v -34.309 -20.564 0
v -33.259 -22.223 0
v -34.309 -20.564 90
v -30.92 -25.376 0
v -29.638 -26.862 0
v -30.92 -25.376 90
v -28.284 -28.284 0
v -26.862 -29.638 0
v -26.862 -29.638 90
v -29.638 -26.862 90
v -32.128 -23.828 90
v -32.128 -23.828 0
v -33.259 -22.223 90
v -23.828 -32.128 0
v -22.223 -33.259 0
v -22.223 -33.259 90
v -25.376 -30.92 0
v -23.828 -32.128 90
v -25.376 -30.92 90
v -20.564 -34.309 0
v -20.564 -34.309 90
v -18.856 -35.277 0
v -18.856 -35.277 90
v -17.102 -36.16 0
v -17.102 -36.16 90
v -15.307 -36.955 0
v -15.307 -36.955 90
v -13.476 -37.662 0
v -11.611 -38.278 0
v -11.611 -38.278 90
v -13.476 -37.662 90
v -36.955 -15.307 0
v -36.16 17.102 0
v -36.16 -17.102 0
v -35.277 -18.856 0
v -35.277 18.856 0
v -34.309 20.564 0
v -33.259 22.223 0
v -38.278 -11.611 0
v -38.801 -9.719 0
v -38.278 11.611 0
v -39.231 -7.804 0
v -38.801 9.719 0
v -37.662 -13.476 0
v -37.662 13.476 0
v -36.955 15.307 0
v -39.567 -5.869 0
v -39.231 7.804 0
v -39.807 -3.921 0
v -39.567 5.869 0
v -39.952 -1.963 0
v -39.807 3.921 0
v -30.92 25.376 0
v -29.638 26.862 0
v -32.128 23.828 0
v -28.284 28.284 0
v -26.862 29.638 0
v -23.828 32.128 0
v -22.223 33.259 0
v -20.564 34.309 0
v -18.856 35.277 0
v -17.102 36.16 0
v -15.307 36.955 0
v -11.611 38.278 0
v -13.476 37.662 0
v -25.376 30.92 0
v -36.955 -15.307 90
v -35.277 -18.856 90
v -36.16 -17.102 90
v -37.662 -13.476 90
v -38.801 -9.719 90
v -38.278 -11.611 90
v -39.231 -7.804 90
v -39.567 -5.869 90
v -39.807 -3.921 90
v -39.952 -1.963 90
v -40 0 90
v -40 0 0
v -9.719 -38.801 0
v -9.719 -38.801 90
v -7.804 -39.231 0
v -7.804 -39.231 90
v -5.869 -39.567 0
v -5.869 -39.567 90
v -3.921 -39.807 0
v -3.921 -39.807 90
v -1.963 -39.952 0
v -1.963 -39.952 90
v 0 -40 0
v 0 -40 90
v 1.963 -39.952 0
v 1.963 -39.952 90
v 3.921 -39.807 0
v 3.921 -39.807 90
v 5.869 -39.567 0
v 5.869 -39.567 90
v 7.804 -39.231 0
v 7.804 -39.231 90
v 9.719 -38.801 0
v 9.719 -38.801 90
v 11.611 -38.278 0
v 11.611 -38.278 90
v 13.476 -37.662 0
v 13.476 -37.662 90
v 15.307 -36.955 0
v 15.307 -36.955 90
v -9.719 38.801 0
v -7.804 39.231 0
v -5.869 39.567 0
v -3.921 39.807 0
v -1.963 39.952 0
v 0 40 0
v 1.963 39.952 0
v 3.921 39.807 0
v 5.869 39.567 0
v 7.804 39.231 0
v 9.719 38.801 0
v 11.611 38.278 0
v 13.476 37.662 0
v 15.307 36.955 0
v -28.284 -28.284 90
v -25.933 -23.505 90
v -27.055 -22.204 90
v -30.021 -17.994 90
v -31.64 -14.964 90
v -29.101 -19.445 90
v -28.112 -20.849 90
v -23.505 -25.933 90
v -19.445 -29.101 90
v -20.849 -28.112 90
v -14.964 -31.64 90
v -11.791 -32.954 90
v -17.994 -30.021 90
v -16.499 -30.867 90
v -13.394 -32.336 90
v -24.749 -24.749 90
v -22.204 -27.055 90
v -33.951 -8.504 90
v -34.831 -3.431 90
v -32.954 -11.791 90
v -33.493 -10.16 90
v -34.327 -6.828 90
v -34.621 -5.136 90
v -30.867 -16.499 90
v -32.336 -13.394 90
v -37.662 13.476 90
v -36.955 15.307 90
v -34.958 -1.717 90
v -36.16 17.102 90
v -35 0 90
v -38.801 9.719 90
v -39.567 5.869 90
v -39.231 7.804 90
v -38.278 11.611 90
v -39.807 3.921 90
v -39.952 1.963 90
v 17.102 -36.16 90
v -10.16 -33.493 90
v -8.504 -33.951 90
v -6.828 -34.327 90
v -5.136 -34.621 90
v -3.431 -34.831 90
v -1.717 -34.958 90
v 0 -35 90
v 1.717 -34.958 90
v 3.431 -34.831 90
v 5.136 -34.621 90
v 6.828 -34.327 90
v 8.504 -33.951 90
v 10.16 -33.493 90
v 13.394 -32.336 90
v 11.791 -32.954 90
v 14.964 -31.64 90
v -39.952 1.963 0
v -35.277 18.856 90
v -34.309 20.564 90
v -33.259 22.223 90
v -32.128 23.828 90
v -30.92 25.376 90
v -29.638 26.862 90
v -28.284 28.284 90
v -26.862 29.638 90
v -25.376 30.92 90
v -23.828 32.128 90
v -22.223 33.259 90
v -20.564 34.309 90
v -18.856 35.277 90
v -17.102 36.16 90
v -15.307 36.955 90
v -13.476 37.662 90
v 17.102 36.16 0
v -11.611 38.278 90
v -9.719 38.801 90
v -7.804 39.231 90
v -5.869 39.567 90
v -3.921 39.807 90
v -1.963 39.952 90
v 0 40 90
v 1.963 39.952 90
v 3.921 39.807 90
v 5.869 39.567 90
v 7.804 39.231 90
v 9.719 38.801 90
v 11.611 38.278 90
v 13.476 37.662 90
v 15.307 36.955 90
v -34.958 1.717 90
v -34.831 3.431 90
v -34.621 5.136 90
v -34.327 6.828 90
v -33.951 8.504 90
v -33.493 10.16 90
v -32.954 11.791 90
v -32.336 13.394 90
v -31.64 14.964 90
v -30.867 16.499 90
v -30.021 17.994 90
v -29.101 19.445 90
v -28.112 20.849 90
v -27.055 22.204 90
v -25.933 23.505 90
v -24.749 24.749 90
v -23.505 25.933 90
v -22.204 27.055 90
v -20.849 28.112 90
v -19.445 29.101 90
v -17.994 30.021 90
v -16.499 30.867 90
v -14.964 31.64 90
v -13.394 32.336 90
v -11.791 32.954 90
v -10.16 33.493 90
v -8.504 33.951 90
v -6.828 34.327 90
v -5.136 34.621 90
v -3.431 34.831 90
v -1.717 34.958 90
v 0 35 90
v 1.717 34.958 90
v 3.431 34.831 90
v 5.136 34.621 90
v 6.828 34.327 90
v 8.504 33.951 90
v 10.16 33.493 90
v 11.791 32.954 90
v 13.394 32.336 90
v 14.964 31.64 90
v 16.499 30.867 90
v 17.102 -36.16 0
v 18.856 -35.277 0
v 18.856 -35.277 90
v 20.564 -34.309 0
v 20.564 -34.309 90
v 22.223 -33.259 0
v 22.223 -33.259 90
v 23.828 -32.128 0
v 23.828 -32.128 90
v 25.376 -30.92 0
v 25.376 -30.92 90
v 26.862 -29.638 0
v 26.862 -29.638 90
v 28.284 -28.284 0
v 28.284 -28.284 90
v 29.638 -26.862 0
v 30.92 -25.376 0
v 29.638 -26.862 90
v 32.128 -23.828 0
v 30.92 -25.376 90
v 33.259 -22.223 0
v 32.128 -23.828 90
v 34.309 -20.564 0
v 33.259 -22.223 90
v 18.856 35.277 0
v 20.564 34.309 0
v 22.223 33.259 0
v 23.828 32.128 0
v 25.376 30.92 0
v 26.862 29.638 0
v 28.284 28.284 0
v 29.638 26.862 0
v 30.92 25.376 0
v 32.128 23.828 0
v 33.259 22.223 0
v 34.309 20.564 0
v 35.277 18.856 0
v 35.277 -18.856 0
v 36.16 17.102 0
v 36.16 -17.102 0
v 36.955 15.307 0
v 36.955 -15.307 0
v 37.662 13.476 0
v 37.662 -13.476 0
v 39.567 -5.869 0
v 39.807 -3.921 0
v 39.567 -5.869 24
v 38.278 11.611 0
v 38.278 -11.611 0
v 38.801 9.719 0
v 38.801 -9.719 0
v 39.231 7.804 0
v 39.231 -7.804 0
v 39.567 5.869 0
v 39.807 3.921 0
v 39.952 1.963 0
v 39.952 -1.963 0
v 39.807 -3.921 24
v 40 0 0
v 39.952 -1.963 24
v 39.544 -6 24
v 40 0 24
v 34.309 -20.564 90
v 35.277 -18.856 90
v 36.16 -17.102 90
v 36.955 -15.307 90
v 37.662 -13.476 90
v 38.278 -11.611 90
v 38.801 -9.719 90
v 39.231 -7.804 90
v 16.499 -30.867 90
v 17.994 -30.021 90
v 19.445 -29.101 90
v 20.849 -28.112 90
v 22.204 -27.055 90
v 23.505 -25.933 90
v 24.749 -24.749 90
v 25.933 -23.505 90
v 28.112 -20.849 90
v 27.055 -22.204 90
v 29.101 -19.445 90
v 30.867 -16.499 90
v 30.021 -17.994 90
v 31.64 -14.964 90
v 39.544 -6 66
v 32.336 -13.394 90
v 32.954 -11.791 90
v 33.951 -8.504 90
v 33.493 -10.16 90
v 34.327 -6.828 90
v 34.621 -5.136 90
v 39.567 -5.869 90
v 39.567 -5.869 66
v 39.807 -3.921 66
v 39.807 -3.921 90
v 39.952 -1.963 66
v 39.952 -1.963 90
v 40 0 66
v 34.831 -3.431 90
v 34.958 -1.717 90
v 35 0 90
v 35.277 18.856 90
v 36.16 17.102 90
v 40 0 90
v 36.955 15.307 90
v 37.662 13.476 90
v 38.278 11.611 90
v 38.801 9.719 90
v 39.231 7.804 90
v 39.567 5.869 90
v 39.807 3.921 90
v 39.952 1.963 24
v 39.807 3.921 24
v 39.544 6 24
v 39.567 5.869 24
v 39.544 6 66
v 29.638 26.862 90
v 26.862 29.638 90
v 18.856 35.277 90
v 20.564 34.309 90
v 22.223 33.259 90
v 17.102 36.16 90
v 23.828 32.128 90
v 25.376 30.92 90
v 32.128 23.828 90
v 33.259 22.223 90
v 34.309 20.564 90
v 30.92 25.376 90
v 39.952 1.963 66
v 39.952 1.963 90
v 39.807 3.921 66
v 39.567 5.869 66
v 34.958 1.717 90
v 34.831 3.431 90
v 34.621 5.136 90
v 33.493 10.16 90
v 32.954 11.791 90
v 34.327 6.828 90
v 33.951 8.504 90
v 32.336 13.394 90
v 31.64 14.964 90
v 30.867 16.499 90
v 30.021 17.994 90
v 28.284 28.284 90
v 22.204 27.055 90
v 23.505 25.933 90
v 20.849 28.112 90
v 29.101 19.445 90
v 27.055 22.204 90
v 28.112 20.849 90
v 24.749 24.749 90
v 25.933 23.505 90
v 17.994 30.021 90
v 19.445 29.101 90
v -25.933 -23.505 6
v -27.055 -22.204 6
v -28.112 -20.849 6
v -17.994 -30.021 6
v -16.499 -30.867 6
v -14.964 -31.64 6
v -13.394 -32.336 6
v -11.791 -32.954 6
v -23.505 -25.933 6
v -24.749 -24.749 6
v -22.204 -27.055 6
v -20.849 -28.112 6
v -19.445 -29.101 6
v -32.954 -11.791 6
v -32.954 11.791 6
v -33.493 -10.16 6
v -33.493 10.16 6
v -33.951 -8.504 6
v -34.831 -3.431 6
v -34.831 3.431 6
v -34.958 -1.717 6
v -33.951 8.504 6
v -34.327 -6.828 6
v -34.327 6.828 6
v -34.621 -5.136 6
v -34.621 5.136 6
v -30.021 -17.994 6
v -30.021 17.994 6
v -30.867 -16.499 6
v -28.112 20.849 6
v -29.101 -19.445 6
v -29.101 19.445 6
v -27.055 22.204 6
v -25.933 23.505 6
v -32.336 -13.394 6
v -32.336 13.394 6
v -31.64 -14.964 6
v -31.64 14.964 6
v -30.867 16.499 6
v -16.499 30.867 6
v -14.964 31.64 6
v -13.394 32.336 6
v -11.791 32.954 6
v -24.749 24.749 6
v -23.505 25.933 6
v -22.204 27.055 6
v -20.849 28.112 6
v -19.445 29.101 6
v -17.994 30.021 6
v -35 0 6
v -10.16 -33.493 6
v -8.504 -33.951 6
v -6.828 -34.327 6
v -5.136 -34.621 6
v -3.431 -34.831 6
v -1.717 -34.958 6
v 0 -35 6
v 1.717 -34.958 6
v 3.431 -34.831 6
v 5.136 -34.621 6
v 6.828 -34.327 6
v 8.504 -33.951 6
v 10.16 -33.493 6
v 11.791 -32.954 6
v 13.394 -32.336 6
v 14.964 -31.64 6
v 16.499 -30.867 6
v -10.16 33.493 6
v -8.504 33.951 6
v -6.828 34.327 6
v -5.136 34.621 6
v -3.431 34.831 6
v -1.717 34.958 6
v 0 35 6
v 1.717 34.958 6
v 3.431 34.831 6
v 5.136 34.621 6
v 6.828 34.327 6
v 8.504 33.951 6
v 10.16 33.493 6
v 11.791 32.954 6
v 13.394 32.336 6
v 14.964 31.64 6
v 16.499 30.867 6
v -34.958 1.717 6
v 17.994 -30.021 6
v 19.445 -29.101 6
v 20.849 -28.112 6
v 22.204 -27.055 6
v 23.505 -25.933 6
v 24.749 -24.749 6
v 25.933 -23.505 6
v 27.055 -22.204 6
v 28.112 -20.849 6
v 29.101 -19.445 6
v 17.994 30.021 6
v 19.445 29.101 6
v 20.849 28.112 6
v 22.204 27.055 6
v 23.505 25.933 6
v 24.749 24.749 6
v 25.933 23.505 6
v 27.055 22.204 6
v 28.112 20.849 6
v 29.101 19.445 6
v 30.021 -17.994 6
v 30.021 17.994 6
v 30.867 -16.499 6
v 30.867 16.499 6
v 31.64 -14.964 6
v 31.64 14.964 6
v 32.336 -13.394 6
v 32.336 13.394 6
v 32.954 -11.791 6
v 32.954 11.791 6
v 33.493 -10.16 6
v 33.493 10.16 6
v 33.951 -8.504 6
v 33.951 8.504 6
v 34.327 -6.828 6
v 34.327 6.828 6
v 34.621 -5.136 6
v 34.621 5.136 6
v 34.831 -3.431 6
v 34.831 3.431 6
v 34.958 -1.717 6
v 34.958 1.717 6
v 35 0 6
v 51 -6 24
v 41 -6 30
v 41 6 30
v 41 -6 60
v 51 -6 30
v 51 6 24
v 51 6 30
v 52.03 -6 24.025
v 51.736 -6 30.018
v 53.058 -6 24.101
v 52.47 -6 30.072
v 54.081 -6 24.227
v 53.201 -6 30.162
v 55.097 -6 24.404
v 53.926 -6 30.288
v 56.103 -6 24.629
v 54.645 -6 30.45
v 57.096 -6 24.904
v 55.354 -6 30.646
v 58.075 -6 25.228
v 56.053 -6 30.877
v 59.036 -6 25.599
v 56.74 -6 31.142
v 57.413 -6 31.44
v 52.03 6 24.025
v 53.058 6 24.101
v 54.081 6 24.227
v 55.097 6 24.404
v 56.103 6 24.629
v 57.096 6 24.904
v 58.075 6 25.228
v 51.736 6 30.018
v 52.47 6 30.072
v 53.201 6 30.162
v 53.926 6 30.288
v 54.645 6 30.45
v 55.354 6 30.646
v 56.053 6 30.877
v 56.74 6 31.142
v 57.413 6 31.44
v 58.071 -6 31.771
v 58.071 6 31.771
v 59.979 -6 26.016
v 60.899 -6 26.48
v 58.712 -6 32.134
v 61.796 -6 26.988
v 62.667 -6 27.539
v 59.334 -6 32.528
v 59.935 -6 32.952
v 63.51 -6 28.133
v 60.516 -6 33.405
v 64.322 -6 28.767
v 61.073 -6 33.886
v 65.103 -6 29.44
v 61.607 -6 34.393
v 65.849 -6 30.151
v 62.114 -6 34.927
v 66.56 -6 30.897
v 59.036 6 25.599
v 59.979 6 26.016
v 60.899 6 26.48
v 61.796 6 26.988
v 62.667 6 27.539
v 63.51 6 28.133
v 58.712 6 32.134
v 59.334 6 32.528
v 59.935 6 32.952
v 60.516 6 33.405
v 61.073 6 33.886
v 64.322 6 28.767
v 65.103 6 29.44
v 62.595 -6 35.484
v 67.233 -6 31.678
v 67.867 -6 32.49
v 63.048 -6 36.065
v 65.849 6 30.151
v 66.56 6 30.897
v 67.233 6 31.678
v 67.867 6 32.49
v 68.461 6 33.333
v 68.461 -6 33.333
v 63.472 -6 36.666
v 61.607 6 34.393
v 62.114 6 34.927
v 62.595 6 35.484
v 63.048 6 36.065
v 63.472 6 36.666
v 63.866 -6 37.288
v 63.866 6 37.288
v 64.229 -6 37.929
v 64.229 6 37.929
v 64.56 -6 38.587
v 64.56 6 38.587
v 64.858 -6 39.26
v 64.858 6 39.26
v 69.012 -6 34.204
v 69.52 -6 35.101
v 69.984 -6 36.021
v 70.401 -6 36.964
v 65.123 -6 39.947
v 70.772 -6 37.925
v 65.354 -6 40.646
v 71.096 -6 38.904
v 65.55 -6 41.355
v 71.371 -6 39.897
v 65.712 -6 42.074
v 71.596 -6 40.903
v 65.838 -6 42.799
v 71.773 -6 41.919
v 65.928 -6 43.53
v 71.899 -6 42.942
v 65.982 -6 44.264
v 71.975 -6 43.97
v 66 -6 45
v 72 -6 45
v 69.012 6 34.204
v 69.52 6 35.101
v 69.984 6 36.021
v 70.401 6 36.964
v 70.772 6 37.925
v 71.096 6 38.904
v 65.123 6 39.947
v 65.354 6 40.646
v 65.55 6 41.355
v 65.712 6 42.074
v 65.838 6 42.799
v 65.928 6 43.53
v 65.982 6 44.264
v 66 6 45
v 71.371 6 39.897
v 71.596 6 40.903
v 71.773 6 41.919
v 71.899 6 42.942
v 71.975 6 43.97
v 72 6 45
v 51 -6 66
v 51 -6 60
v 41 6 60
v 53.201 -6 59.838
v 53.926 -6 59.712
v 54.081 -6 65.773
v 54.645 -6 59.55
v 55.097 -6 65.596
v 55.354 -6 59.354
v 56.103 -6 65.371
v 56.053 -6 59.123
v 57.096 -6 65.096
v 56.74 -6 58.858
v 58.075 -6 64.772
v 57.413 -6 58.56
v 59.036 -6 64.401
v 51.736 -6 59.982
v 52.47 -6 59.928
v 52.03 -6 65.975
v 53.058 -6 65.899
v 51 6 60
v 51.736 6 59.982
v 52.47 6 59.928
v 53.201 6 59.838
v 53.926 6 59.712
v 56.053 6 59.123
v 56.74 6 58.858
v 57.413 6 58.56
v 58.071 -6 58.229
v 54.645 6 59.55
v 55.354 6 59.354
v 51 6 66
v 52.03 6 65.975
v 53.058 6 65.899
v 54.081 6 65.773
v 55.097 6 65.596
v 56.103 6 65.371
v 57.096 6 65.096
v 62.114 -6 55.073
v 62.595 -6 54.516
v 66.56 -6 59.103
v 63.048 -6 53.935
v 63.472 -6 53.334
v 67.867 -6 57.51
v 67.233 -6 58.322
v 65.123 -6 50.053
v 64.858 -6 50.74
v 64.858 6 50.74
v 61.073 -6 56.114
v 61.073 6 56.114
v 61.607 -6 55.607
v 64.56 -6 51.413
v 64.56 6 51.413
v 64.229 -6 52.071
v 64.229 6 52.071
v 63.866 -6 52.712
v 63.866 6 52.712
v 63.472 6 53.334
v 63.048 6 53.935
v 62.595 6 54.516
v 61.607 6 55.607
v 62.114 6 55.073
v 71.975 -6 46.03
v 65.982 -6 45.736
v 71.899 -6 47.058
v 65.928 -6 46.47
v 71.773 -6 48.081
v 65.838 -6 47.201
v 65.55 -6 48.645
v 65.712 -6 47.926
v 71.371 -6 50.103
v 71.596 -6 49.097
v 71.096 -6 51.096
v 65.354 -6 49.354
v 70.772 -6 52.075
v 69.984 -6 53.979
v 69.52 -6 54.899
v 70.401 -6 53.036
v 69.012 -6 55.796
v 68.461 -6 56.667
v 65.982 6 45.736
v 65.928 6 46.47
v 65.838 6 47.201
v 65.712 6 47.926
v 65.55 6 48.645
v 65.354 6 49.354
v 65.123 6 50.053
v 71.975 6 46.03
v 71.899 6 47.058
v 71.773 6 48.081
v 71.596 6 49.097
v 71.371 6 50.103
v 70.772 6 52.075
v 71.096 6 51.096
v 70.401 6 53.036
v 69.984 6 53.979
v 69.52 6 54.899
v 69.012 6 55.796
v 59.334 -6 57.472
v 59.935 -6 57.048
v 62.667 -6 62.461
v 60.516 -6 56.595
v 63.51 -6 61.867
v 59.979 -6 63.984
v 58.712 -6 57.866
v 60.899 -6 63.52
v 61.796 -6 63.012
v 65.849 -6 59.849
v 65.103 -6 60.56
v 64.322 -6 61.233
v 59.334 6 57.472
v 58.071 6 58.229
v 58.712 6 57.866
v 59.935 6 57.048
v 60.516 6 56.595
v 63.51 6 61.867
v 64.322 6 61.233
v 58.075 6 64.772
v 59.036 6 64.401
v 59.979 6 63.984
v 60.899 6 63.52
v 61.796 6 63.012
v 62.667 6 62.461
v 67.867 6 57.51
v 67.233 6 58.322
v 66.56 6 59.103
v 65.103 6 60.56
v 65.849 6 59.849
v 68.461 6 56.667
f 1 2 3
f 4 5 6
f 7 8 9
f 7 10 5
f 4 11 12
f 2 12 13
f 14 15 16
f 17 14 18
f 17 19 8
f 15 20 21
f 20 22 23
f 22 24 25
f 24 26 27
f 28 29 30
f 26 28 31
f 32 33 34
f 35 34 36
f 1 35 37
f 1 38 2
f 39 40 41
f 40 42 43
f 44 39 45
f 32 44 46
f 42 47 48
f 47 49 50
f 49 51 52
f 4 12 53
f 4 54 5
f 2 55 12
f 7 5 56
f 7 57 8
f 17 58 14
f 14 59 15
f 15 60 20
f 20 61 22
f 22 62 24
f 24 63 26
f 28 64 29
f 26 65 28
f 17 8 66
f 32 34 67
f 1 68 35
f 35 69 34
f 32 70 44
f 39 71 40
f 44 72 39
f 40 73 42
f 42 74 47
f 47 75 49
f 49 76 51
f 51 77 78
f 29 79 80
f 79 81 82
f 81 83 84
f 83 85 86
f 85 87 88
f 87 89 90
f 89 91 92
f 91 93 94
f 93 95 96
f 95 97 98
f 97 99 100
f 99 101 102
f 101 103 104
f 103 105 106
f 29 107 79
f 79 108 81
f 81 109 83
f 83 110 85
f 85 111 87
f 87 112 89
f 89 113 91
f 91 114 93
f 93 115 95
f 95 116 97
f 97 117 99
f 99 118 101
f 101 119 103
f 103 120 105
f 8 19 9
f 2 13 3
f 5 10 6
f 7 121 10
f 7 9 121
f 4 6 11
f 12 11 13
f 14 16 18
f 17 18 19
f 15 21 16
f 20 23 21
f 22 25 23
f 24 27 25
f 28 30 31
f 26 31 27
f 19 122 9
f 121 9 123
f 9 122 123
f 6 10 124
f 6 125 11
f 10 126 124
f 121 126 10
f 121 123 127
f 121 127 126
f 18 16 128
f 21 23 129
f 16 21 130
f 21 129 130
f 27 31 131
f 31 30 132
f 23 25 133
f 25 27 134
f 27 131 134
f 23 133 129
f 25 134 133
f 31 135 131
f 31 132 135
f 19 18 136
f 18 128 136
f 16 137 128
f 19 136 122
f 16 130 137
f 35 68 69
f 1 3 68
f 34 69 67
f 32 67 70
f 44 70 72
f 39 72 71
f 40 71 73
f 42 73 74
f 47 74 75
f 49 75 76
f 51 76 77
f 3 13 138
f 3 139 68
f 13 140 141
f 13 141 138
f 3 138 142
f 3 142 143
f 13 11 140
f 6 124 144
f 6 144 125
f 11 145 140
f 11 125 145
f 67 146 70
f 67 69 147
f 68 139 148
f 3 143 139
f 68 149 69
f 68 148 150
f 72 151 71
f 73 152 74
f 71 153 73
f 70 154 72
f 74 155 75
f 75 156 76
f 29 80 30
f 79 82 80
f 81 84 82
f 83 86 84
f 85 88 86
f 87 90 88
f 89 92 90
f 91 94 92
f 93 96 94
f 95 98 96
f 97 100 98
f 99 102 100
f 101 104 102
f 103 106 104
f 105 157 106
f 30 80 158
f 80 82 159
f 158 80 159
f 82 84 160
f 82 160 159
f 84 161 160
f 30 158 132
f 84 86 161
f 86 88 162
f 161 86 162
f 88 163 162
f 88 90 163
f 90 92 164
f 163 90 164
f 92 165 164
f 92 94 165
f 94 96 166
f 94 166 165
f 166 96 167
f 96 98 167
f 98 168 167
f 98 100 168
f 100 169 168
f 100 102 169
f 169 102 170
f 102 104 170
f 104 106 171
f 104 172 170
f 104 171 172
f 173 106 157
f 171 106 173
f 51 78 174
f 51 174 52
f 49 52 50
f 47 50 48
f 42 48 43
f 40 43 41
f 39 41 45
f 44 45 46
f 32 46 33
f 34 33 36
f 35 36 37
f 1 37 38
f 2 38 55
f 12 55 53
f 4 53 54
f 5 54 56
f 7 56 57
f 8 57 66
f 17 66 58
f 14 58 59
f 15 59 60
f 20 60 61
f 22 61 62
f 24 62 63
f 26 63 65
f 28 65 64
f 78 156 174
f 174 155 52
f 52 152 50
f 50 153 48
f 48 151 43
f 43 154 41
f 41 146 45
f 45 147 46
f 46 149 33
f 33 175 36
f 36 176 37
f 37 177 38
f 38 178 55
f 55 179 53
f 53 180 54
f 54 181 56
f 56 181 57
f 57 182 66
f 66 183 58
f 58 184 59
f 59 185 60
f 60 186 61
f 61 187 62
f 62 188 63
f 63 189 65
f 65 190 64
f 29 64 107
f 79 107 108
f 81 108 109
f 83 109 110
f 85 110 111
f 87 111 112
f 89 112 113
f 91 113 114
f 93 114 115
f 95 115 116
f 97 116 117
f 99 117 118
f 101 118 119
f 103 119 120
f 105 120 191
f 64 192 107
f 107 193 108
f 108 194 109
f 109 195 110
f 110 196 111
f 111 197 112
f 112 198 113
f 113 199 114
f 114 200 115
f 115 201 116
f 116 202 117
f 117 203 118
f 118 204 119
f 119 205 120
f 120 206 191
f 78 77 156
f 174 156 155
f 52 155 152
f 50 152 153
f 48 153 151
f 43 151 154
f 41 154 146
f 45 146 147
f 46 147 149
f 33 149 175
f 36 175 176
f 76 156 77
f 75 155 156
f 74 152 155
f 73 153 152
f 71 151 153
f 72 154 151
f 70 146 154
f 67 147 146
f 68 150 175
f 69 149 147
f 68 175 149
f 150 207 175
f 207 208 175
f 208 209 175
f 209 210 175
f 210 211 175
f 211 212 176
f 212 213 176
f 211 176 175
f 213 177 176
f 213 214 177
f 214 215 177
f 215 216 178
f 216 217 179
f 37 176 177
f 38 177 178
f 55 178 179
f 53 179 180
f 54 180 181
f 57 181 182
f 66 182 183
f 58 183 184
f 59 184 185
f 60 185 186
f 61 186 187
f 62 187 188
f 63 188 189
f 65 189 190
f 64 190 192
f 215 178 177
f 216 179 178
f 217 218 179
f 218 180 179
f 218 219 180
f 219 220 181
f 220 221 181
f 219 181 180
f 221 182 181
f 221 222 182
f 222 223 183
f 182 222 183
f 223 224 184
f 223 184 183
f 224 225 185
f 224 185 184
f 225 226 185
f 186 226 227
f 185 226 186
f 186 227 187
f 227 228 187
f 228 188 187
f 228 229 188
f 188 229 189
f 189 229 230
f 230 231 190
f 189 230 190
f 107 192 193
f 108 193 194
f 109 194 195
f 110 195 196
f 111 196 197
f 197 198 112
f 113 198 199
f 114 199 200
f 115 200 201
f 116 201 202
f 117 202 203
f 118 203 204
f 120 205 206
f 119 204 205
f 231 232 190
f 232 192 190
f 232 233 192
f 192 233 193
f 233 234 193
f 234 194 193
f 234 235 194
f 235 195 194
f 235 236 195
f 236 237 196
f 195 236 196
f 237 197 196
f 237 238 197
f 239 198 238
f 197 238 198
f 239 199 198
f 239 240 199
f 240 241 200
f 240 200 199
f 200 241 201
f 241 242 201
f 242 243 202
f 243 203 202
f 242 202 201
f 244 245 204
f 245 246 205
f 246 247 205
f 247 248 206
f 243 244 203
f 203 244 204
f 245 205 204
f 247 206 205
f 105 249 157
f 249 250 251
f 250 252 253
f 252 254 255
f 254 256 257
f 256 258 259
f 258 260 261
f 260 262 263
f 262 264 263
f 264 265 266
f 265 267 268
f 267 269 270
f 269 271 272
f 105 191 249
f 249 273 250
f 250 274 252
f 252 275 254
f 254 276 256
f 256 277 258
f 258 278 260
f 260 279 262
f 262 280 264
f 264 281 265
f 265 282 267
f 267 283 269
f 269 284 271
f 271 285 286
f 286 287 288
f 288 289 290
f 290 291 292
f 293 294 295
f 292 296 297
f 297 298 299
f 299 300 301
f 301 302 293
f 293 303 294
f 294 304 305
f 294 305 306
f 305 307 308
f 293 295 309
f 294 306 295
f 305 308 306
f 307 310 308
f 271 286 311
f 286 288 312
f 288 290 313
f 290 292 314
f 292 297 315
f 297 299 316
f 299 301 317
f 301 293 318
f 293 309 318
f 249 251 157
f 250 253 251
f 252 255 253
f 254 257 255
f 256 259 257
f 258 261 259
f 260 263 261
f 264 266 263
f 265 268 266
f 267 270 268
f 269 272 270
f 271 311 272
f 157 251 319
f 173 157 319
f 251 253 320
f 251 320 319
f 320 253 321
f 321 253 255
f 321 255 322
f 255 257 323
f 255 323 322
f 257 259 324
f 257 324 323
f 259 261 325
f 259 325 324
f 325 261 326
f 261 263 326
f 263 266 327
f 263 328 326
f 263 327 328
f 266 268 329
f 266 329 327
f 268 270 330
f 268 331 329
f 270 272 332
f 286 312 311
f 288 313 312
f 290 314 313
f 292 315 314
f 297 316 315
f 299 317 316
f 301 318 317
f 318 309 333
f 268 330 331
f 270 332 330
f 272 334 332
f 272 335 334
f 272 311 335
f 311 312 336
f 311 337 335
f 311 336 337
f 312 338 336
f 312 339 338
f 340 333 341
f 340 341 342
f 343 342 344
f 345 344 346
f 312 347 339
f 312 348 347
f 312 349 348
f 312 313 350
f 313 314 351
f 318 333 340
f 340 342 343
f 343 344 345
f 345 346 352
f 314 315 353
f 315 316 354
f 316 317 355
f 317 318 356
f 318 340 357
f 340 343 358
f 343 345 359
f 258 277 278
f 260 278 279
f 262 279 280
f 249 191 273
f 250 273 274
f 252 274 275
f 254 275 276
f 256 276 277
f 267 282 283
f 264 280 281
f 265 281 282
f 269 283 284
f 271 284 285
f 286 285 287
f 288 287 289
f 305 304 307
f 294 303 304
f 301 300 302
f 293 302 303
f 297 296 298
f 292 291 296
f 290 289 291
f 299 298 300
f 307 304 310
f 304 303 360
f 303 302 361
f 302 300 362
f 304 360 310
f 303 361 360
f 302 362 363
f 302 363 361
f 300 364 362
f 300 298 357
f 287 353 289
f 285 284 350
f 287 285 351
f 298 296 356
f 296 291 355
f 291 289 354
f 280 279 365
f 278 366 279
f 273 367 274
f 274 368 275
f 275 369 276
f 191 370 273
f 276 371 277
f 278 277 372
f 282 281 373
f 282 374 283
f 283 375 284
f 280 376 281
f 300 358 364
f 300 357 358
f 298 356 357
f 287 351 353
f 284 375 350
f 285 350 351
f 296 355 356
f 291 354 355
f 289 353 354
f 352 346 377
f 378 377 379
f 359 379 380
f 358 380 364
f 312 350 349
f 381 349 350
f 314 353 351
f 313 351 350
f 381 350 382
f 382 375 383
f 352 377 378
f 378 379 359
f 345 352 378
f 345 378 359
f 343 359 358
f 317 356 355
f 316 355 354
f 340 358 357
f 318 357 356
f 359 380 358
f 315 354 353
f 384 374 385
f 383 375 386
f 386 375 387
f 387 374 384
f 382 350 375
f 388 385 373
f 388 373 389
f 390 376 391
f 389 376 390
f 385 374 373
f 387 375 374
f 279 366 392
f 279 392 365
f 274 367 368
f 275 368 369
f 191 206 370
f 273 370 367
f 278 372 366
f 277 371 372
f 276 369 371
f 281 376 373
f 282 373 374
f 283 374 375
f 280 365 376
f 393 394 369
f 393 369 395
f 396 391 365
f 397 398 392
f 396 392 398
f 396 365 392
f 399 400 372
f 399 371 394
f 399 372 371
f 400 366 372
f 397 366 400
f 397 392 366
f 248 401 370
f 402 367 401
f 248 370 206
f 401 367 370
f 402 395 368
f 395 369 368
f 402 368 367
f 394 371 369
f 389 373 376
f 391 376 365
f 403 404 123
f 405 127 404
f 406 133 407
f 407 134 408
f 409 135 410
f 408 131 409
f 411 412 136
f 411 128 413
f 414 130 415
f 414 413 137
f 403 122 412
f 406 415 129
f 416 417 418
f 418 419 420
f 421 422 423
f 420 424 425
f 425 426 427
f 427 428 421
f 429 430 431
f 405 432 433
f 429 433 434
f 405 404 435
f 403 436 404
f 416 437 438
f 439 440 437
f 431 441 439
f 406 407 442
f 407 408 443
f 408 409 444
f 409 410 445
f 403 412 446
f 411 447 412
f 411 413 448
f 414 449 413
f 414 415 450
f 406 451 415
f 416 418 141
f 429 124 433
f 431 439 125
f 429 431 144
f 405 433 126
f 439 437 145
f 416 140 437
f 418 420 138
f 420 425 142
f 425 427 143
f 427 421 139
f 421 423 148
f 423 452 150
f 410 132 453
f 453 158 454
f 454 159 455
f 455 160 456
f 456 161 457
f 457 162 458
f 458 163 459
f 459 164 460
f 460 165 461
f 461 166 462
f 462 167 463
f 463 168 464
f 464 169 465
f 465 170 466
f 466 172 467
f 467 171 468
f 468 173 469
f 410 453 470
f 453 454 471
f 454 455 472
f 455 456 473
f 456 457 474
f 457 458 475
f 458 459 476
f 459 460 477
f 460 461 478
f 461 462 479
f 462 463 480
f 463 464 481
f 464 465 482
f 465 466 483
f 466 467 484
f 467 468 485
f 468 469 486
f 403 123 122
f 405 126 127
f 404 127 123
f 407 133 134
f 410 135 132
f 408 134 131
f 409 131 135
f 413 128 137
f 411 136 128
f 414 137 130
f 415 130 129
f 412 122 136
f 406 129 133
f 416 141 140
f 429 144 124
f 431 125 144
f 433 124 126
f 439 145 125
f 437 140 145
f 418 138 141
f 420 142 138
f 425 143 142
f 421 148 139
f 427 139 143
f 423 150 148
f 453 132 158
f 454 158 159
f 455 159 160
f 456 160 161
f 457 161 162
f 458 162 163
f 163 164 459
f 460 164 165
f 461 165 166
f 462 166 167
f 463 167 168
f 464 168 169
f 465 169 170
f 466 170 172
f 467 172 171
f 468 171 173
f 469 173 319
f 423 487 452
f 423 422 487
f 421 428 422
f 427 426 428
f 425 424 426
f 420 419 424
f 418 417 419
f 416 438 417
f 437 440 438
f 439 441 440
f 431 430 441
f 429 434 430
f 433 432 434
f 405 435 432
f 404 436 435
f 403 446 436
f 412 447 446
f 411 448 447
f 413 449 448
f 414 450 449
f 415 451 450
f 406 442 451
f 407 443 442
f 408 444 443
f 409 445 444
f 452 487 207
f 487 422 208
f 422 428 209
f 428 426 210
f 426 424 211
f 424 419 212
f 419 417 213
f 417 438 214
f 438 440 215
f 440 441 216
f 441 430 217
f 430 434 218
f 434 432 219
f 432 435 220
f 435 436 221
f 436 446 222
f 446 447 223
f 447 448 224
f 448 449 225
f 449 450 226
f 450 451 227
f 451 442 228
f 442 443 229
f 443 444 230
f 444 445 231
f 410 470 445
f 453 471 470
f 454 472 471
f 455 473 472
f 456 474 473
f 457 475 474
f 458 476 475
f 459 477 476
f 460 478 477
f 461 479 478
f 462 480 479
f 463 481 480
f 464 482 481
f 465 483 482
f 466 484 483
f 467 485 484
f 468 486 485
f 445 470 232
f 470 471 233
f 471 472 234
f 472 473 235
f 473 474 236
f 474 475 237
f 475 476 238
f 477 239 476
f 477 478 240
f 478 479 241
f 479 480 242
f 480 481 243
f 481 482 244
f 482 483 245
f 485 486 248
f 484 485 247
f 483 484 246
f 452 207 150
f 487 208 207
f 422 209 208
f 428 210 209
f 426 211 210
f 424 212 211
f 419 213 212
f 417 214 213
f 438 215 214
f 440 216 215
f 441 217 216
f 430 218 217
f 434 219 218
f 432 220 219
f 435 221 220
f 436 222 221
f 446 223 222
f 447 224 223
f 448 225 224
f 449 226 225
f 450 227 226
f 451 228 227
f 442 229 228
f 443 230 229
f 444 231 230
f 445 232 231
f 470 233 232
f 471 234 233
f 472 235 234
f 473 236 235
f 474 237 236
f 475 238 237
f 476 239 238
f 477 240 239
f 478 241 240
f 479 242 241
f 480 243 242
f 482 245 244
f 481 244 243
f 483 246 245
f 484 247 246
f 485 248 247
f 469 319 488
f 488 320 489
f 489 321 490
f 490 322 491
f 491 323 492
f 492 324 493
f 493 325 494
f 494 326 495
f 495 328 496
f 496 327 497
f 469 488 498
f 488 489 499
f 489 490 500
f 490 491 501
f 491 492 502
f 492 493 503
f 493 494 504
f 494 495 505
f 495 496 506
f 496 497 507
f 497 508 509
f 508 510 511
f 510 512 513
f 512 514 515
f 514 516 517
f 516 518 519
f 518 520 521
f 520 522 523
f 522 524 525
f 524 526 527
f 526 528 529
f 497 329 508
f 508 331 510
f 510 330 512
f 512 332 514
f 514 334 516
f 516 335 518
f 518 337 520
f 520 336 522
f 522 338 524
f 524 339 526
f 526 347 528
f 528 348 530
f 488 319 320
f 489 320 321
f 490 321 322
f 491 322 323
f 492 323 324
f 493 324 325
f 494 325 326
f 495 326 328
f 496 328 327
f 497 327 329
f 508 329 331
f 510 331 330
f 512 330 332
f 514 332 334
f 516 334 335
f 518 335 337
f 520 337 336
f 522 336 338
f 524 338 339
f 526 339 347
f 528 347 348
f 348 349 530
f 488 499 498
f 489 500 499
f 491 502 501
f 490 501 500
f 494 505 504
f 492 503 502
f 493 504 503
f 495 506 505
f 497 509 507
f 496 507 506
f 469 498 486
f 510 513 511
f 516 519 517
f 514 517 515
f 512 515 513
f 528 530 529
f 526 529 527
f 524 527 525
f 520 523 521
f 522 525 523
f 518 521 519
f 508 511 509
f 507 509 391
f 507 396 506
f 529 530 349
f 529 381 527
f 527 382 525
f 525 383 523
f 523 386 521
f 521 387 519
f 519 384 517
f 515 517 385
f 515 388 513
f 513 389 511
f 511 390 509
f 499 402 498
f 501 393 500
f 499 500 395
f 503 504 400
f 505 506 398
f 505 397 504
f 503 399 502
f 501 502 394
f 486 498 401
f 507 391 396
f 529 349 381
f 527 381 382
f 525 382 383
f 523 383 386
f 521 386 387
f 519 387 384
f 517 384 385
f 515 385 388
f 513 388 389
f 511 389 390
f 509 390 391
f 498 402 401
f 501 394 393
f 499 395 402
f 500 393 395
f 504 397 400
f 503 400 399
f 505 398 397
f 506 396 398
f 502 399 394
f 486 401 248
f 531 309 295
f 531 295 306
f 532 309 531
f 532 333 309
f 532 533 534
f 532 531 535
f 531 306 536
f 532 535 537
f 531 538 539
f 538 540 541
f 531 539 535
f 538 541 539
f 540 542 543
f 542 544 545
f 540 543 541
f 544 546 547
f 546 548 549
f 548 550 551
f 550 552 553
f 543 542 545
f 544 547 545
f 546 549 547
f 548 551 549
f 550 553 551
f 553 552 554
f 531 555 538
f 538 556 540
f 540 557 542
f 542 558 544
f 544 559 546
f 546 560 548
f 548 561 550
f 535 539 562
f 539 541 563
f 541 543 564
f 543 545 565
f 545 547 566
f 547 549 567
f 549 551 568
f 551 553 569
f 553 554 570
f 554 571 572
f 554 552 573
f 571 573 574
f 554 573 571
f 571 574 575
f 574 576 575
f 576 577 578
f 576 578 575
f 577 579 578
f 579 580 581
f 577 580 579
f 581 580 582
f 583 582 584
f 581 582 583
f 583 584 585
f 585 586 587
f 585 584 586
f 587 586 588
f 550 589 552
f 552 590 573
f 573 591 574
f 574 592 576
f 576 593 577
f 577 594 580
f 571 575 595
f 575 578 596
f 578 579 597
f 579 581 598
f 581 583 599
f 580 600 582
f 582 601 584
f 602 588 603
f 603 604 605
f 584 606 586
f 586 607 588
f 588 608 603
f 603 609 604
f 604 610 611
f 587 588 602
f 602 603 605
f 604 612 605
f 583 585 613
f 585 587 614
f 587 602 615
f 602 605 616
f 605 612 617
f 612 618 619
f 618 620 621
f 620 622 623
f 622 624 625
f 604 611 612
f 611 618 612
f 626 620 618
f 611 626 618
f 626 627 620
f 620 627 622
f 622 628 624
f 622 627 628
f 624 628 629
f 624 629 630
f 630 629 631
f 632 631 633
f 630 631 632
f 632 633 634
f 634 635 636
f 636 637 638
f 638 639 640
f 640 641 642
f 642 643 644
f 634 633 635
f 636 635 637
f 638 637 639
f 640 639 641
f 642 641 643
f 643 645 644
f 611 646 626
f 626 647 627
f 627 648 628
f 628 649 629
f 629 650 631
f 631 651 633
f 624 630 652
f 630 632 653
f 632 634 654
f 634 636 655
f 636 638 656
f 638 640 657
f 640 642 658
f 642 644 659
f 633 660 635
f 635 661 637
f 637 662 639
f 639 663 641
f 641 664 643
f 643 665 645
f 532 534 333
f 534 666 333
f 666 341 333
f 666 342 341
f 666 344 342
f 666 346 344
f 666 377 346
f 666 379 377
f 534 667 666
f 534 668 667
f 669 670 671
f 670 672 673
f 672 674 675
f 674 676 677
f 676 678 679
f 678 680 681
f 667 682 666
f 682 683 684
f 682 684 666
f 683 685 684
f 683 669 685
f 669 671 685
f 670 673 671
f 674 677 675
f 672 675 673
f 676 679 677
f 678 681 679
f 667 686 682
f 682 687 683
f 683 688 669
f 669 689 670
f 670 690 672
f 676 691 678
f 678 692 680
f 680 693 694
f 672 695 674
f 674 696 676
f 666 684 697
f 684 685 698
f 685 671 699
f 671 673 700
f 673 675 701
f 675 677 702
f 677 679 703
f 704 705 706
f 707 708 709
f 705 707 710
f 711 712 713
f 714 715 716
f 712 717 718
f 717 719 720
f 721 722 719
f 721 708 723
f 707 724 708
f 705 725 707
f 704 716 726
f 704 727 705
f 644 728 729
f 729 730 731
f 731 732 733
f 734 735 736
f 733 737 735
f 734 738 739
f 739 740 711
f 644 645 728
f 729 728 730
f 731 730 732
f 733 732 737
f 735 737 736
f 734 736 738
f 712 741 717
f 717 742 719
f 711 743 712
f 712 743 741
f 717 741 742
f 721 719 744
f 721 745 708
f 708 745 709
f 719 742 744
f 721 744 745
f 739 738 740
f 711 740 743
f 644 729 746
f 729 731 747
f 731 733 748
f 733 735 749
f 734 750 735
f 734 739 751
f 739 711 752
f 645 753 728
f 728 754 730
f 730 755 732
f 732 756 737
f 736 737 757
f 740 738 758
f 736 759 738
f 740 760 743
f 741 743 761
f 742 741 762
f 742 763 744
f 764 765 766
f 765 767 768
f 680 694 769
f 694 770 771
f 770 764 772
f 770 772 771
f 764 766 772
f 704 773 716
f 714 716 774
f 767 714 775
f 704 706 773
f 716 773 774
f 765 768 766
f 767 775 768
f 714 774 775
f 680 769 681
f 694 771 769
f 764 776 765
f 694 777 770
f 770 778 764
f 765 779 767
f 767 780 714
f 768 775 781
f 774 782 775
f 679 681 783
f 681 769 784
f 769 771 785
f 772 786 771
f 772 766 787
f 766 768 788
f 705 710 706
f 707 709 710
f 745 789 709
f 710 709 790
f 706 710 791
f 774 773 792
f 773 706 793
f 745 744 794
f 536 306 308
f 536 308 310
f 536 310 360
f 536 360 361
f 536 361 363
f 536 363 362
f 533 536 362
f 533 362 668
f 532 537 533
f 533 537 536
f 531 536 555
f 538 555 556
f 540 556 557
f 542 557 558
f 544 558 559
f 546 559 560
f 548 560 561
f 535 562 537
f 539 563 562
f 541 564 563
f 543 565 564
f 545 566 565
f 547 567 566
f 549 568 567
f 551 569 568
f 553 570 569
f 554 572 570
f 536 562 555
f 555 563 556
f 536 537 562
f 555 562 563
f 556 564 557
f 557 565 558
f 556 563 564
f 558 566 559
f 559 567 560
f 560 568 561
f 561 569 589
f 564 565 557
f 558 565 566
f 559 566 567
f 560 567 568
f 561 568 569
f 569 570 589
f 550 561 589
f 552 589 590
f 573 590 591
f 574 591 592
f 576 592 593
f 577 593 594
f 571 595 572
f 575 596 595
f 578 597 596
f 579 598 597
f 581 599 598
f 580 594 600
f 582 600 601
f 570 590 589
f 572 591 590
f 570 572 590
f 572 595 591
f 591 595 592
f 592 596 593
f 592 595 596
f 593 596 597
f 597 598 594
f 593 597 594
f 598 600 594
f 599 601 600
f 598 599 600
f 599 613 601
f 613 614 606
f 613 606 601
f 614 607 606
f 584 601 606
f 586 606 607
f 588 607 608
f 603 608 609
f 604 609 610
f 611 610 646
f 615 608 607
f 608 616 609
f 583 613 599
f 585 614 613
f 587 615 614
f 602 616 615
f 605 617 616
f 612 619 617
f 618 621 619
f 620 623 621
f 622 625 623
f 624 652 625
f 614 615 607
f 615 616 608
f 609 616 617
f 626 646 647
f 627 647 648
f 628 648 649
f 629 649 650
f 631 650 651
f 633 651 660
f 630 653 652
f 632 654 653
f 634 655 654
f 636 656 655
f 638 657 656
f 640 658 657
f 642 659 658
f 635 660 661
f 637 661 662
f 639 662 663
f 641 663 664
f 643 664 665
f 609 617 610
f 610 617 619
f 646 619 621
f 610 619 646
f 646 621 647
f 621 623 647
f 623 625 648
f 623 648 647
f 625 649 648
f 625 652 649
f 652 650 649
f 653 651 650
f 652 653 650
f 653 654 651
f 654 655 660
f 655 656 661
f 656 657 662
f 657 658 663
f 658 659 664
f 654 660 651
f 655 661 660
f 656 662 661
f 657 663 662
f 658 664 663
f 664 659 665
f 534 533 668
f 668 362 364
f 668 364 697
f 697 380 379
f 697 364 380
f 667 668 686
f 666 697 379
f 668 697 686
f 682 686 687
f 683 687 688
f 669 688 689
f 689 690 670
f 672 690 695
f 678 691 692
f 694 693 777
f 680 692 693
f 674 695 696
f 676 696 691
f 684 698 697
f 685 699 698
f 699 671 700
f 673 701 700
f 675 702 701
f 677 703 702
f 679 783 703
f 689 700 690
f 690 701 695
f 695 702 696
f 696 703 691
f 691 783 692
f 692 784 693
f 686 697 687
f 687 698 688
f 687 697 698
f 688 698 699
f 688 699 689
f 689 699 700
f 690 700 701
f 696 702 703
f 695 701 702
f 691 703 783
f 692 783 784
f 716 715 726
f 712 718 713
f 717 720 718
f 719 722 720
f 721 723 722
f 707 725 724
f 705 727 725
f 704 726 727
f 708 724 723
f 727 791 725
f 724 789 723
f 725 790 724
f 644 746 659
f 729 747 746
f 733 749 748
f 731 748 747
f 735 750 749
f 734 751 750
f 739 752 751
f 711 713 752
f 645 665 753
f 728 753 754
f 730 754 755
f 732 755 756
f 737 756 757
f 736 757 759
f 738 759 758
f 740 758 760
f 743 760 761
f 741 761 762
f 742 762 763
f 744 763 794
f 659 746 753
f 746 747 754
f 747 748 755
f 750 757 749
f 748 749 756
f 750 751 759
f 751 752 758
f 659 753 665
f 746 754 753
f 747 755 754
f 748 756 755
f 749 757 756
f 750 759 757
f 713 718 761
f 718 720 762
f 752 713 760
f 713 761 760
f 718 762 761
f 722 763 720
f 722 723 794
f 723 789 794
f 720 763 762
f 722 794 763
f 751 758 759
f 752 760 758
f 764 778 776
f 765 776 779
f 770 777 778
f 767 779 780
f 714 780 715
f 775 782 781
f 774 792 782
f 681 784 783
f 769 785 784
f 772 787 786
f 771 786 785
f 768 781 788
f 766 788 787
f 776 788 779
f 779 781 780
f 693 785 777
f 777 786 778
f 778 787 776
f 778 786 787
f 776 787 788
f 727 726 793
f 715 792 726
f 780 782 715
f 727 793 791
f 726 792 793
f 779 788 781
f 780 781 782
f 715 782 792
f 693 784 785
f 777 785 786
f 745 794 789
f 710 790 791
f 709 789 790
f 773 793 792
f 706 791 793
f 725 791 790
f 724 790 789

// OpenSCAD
$fn = 128;

// Mug dimensions
outer_radius = 40;
inner_radius = 35;
mug_height   = 90;
bottom_thickness = 6;

// Handle dimensions
handle_center_z = mug_height / 2;
opening_height  = 30;
opening_width   = 25;
handle_wall     = 6;
handle_depth    = 12;

// Opening begins just outside the mug body
opening_left_x = outer_radius + 1;

// D-shaped 2D profile:
// left side is straight, right side is semicircular.
module d_profile(left_x, center_z, profile_height, profile_width) {
    r = profile_height / 2;
    arc_center_x = left_x + profile_width - r;

    union() {
        translate([left_x, center_z - r])
            square([arc_center_x - left_x, profile_height]);

        intersection() {
            translate([arc_center_x, center_z])
                circle(r = r, $fn = 128);

            translate([arc_center_x, center_z - r - 1])
                square([r + 1, profile_height + 2]);
        }
    }
}

module mug_body() {
    difference() {
        cylinder(h = mug_height, r = outer_radius);

        translate([0, 0, bottom_thickness])
            cylinder(
                h = mug_height - bottom_thickness + 1,
                r = inner_radius
            );
    }
}

module mug_handle() {
    outer_left_x = opening_left_x - handle_wall;
    outer_height = opening_height + 2 * handle_wall;
    outer_width  = opening_width + 2 * handle_wall;

    rotate([90, 0, 0])
        linear_extrude(
            height = handle_depth,
            center = true,
            convexity = 10
        )
        difference() {
            d_profile(
                outer_left_x,
                handle_center_z,
                outer_height,
                outer_width
            );

            d_profile(
                opening_left_x,
                handle_center_z,
                opening_height,
                opening_width
            );
        }
}

union() {
    mug_body();
    mug_handle();
}
